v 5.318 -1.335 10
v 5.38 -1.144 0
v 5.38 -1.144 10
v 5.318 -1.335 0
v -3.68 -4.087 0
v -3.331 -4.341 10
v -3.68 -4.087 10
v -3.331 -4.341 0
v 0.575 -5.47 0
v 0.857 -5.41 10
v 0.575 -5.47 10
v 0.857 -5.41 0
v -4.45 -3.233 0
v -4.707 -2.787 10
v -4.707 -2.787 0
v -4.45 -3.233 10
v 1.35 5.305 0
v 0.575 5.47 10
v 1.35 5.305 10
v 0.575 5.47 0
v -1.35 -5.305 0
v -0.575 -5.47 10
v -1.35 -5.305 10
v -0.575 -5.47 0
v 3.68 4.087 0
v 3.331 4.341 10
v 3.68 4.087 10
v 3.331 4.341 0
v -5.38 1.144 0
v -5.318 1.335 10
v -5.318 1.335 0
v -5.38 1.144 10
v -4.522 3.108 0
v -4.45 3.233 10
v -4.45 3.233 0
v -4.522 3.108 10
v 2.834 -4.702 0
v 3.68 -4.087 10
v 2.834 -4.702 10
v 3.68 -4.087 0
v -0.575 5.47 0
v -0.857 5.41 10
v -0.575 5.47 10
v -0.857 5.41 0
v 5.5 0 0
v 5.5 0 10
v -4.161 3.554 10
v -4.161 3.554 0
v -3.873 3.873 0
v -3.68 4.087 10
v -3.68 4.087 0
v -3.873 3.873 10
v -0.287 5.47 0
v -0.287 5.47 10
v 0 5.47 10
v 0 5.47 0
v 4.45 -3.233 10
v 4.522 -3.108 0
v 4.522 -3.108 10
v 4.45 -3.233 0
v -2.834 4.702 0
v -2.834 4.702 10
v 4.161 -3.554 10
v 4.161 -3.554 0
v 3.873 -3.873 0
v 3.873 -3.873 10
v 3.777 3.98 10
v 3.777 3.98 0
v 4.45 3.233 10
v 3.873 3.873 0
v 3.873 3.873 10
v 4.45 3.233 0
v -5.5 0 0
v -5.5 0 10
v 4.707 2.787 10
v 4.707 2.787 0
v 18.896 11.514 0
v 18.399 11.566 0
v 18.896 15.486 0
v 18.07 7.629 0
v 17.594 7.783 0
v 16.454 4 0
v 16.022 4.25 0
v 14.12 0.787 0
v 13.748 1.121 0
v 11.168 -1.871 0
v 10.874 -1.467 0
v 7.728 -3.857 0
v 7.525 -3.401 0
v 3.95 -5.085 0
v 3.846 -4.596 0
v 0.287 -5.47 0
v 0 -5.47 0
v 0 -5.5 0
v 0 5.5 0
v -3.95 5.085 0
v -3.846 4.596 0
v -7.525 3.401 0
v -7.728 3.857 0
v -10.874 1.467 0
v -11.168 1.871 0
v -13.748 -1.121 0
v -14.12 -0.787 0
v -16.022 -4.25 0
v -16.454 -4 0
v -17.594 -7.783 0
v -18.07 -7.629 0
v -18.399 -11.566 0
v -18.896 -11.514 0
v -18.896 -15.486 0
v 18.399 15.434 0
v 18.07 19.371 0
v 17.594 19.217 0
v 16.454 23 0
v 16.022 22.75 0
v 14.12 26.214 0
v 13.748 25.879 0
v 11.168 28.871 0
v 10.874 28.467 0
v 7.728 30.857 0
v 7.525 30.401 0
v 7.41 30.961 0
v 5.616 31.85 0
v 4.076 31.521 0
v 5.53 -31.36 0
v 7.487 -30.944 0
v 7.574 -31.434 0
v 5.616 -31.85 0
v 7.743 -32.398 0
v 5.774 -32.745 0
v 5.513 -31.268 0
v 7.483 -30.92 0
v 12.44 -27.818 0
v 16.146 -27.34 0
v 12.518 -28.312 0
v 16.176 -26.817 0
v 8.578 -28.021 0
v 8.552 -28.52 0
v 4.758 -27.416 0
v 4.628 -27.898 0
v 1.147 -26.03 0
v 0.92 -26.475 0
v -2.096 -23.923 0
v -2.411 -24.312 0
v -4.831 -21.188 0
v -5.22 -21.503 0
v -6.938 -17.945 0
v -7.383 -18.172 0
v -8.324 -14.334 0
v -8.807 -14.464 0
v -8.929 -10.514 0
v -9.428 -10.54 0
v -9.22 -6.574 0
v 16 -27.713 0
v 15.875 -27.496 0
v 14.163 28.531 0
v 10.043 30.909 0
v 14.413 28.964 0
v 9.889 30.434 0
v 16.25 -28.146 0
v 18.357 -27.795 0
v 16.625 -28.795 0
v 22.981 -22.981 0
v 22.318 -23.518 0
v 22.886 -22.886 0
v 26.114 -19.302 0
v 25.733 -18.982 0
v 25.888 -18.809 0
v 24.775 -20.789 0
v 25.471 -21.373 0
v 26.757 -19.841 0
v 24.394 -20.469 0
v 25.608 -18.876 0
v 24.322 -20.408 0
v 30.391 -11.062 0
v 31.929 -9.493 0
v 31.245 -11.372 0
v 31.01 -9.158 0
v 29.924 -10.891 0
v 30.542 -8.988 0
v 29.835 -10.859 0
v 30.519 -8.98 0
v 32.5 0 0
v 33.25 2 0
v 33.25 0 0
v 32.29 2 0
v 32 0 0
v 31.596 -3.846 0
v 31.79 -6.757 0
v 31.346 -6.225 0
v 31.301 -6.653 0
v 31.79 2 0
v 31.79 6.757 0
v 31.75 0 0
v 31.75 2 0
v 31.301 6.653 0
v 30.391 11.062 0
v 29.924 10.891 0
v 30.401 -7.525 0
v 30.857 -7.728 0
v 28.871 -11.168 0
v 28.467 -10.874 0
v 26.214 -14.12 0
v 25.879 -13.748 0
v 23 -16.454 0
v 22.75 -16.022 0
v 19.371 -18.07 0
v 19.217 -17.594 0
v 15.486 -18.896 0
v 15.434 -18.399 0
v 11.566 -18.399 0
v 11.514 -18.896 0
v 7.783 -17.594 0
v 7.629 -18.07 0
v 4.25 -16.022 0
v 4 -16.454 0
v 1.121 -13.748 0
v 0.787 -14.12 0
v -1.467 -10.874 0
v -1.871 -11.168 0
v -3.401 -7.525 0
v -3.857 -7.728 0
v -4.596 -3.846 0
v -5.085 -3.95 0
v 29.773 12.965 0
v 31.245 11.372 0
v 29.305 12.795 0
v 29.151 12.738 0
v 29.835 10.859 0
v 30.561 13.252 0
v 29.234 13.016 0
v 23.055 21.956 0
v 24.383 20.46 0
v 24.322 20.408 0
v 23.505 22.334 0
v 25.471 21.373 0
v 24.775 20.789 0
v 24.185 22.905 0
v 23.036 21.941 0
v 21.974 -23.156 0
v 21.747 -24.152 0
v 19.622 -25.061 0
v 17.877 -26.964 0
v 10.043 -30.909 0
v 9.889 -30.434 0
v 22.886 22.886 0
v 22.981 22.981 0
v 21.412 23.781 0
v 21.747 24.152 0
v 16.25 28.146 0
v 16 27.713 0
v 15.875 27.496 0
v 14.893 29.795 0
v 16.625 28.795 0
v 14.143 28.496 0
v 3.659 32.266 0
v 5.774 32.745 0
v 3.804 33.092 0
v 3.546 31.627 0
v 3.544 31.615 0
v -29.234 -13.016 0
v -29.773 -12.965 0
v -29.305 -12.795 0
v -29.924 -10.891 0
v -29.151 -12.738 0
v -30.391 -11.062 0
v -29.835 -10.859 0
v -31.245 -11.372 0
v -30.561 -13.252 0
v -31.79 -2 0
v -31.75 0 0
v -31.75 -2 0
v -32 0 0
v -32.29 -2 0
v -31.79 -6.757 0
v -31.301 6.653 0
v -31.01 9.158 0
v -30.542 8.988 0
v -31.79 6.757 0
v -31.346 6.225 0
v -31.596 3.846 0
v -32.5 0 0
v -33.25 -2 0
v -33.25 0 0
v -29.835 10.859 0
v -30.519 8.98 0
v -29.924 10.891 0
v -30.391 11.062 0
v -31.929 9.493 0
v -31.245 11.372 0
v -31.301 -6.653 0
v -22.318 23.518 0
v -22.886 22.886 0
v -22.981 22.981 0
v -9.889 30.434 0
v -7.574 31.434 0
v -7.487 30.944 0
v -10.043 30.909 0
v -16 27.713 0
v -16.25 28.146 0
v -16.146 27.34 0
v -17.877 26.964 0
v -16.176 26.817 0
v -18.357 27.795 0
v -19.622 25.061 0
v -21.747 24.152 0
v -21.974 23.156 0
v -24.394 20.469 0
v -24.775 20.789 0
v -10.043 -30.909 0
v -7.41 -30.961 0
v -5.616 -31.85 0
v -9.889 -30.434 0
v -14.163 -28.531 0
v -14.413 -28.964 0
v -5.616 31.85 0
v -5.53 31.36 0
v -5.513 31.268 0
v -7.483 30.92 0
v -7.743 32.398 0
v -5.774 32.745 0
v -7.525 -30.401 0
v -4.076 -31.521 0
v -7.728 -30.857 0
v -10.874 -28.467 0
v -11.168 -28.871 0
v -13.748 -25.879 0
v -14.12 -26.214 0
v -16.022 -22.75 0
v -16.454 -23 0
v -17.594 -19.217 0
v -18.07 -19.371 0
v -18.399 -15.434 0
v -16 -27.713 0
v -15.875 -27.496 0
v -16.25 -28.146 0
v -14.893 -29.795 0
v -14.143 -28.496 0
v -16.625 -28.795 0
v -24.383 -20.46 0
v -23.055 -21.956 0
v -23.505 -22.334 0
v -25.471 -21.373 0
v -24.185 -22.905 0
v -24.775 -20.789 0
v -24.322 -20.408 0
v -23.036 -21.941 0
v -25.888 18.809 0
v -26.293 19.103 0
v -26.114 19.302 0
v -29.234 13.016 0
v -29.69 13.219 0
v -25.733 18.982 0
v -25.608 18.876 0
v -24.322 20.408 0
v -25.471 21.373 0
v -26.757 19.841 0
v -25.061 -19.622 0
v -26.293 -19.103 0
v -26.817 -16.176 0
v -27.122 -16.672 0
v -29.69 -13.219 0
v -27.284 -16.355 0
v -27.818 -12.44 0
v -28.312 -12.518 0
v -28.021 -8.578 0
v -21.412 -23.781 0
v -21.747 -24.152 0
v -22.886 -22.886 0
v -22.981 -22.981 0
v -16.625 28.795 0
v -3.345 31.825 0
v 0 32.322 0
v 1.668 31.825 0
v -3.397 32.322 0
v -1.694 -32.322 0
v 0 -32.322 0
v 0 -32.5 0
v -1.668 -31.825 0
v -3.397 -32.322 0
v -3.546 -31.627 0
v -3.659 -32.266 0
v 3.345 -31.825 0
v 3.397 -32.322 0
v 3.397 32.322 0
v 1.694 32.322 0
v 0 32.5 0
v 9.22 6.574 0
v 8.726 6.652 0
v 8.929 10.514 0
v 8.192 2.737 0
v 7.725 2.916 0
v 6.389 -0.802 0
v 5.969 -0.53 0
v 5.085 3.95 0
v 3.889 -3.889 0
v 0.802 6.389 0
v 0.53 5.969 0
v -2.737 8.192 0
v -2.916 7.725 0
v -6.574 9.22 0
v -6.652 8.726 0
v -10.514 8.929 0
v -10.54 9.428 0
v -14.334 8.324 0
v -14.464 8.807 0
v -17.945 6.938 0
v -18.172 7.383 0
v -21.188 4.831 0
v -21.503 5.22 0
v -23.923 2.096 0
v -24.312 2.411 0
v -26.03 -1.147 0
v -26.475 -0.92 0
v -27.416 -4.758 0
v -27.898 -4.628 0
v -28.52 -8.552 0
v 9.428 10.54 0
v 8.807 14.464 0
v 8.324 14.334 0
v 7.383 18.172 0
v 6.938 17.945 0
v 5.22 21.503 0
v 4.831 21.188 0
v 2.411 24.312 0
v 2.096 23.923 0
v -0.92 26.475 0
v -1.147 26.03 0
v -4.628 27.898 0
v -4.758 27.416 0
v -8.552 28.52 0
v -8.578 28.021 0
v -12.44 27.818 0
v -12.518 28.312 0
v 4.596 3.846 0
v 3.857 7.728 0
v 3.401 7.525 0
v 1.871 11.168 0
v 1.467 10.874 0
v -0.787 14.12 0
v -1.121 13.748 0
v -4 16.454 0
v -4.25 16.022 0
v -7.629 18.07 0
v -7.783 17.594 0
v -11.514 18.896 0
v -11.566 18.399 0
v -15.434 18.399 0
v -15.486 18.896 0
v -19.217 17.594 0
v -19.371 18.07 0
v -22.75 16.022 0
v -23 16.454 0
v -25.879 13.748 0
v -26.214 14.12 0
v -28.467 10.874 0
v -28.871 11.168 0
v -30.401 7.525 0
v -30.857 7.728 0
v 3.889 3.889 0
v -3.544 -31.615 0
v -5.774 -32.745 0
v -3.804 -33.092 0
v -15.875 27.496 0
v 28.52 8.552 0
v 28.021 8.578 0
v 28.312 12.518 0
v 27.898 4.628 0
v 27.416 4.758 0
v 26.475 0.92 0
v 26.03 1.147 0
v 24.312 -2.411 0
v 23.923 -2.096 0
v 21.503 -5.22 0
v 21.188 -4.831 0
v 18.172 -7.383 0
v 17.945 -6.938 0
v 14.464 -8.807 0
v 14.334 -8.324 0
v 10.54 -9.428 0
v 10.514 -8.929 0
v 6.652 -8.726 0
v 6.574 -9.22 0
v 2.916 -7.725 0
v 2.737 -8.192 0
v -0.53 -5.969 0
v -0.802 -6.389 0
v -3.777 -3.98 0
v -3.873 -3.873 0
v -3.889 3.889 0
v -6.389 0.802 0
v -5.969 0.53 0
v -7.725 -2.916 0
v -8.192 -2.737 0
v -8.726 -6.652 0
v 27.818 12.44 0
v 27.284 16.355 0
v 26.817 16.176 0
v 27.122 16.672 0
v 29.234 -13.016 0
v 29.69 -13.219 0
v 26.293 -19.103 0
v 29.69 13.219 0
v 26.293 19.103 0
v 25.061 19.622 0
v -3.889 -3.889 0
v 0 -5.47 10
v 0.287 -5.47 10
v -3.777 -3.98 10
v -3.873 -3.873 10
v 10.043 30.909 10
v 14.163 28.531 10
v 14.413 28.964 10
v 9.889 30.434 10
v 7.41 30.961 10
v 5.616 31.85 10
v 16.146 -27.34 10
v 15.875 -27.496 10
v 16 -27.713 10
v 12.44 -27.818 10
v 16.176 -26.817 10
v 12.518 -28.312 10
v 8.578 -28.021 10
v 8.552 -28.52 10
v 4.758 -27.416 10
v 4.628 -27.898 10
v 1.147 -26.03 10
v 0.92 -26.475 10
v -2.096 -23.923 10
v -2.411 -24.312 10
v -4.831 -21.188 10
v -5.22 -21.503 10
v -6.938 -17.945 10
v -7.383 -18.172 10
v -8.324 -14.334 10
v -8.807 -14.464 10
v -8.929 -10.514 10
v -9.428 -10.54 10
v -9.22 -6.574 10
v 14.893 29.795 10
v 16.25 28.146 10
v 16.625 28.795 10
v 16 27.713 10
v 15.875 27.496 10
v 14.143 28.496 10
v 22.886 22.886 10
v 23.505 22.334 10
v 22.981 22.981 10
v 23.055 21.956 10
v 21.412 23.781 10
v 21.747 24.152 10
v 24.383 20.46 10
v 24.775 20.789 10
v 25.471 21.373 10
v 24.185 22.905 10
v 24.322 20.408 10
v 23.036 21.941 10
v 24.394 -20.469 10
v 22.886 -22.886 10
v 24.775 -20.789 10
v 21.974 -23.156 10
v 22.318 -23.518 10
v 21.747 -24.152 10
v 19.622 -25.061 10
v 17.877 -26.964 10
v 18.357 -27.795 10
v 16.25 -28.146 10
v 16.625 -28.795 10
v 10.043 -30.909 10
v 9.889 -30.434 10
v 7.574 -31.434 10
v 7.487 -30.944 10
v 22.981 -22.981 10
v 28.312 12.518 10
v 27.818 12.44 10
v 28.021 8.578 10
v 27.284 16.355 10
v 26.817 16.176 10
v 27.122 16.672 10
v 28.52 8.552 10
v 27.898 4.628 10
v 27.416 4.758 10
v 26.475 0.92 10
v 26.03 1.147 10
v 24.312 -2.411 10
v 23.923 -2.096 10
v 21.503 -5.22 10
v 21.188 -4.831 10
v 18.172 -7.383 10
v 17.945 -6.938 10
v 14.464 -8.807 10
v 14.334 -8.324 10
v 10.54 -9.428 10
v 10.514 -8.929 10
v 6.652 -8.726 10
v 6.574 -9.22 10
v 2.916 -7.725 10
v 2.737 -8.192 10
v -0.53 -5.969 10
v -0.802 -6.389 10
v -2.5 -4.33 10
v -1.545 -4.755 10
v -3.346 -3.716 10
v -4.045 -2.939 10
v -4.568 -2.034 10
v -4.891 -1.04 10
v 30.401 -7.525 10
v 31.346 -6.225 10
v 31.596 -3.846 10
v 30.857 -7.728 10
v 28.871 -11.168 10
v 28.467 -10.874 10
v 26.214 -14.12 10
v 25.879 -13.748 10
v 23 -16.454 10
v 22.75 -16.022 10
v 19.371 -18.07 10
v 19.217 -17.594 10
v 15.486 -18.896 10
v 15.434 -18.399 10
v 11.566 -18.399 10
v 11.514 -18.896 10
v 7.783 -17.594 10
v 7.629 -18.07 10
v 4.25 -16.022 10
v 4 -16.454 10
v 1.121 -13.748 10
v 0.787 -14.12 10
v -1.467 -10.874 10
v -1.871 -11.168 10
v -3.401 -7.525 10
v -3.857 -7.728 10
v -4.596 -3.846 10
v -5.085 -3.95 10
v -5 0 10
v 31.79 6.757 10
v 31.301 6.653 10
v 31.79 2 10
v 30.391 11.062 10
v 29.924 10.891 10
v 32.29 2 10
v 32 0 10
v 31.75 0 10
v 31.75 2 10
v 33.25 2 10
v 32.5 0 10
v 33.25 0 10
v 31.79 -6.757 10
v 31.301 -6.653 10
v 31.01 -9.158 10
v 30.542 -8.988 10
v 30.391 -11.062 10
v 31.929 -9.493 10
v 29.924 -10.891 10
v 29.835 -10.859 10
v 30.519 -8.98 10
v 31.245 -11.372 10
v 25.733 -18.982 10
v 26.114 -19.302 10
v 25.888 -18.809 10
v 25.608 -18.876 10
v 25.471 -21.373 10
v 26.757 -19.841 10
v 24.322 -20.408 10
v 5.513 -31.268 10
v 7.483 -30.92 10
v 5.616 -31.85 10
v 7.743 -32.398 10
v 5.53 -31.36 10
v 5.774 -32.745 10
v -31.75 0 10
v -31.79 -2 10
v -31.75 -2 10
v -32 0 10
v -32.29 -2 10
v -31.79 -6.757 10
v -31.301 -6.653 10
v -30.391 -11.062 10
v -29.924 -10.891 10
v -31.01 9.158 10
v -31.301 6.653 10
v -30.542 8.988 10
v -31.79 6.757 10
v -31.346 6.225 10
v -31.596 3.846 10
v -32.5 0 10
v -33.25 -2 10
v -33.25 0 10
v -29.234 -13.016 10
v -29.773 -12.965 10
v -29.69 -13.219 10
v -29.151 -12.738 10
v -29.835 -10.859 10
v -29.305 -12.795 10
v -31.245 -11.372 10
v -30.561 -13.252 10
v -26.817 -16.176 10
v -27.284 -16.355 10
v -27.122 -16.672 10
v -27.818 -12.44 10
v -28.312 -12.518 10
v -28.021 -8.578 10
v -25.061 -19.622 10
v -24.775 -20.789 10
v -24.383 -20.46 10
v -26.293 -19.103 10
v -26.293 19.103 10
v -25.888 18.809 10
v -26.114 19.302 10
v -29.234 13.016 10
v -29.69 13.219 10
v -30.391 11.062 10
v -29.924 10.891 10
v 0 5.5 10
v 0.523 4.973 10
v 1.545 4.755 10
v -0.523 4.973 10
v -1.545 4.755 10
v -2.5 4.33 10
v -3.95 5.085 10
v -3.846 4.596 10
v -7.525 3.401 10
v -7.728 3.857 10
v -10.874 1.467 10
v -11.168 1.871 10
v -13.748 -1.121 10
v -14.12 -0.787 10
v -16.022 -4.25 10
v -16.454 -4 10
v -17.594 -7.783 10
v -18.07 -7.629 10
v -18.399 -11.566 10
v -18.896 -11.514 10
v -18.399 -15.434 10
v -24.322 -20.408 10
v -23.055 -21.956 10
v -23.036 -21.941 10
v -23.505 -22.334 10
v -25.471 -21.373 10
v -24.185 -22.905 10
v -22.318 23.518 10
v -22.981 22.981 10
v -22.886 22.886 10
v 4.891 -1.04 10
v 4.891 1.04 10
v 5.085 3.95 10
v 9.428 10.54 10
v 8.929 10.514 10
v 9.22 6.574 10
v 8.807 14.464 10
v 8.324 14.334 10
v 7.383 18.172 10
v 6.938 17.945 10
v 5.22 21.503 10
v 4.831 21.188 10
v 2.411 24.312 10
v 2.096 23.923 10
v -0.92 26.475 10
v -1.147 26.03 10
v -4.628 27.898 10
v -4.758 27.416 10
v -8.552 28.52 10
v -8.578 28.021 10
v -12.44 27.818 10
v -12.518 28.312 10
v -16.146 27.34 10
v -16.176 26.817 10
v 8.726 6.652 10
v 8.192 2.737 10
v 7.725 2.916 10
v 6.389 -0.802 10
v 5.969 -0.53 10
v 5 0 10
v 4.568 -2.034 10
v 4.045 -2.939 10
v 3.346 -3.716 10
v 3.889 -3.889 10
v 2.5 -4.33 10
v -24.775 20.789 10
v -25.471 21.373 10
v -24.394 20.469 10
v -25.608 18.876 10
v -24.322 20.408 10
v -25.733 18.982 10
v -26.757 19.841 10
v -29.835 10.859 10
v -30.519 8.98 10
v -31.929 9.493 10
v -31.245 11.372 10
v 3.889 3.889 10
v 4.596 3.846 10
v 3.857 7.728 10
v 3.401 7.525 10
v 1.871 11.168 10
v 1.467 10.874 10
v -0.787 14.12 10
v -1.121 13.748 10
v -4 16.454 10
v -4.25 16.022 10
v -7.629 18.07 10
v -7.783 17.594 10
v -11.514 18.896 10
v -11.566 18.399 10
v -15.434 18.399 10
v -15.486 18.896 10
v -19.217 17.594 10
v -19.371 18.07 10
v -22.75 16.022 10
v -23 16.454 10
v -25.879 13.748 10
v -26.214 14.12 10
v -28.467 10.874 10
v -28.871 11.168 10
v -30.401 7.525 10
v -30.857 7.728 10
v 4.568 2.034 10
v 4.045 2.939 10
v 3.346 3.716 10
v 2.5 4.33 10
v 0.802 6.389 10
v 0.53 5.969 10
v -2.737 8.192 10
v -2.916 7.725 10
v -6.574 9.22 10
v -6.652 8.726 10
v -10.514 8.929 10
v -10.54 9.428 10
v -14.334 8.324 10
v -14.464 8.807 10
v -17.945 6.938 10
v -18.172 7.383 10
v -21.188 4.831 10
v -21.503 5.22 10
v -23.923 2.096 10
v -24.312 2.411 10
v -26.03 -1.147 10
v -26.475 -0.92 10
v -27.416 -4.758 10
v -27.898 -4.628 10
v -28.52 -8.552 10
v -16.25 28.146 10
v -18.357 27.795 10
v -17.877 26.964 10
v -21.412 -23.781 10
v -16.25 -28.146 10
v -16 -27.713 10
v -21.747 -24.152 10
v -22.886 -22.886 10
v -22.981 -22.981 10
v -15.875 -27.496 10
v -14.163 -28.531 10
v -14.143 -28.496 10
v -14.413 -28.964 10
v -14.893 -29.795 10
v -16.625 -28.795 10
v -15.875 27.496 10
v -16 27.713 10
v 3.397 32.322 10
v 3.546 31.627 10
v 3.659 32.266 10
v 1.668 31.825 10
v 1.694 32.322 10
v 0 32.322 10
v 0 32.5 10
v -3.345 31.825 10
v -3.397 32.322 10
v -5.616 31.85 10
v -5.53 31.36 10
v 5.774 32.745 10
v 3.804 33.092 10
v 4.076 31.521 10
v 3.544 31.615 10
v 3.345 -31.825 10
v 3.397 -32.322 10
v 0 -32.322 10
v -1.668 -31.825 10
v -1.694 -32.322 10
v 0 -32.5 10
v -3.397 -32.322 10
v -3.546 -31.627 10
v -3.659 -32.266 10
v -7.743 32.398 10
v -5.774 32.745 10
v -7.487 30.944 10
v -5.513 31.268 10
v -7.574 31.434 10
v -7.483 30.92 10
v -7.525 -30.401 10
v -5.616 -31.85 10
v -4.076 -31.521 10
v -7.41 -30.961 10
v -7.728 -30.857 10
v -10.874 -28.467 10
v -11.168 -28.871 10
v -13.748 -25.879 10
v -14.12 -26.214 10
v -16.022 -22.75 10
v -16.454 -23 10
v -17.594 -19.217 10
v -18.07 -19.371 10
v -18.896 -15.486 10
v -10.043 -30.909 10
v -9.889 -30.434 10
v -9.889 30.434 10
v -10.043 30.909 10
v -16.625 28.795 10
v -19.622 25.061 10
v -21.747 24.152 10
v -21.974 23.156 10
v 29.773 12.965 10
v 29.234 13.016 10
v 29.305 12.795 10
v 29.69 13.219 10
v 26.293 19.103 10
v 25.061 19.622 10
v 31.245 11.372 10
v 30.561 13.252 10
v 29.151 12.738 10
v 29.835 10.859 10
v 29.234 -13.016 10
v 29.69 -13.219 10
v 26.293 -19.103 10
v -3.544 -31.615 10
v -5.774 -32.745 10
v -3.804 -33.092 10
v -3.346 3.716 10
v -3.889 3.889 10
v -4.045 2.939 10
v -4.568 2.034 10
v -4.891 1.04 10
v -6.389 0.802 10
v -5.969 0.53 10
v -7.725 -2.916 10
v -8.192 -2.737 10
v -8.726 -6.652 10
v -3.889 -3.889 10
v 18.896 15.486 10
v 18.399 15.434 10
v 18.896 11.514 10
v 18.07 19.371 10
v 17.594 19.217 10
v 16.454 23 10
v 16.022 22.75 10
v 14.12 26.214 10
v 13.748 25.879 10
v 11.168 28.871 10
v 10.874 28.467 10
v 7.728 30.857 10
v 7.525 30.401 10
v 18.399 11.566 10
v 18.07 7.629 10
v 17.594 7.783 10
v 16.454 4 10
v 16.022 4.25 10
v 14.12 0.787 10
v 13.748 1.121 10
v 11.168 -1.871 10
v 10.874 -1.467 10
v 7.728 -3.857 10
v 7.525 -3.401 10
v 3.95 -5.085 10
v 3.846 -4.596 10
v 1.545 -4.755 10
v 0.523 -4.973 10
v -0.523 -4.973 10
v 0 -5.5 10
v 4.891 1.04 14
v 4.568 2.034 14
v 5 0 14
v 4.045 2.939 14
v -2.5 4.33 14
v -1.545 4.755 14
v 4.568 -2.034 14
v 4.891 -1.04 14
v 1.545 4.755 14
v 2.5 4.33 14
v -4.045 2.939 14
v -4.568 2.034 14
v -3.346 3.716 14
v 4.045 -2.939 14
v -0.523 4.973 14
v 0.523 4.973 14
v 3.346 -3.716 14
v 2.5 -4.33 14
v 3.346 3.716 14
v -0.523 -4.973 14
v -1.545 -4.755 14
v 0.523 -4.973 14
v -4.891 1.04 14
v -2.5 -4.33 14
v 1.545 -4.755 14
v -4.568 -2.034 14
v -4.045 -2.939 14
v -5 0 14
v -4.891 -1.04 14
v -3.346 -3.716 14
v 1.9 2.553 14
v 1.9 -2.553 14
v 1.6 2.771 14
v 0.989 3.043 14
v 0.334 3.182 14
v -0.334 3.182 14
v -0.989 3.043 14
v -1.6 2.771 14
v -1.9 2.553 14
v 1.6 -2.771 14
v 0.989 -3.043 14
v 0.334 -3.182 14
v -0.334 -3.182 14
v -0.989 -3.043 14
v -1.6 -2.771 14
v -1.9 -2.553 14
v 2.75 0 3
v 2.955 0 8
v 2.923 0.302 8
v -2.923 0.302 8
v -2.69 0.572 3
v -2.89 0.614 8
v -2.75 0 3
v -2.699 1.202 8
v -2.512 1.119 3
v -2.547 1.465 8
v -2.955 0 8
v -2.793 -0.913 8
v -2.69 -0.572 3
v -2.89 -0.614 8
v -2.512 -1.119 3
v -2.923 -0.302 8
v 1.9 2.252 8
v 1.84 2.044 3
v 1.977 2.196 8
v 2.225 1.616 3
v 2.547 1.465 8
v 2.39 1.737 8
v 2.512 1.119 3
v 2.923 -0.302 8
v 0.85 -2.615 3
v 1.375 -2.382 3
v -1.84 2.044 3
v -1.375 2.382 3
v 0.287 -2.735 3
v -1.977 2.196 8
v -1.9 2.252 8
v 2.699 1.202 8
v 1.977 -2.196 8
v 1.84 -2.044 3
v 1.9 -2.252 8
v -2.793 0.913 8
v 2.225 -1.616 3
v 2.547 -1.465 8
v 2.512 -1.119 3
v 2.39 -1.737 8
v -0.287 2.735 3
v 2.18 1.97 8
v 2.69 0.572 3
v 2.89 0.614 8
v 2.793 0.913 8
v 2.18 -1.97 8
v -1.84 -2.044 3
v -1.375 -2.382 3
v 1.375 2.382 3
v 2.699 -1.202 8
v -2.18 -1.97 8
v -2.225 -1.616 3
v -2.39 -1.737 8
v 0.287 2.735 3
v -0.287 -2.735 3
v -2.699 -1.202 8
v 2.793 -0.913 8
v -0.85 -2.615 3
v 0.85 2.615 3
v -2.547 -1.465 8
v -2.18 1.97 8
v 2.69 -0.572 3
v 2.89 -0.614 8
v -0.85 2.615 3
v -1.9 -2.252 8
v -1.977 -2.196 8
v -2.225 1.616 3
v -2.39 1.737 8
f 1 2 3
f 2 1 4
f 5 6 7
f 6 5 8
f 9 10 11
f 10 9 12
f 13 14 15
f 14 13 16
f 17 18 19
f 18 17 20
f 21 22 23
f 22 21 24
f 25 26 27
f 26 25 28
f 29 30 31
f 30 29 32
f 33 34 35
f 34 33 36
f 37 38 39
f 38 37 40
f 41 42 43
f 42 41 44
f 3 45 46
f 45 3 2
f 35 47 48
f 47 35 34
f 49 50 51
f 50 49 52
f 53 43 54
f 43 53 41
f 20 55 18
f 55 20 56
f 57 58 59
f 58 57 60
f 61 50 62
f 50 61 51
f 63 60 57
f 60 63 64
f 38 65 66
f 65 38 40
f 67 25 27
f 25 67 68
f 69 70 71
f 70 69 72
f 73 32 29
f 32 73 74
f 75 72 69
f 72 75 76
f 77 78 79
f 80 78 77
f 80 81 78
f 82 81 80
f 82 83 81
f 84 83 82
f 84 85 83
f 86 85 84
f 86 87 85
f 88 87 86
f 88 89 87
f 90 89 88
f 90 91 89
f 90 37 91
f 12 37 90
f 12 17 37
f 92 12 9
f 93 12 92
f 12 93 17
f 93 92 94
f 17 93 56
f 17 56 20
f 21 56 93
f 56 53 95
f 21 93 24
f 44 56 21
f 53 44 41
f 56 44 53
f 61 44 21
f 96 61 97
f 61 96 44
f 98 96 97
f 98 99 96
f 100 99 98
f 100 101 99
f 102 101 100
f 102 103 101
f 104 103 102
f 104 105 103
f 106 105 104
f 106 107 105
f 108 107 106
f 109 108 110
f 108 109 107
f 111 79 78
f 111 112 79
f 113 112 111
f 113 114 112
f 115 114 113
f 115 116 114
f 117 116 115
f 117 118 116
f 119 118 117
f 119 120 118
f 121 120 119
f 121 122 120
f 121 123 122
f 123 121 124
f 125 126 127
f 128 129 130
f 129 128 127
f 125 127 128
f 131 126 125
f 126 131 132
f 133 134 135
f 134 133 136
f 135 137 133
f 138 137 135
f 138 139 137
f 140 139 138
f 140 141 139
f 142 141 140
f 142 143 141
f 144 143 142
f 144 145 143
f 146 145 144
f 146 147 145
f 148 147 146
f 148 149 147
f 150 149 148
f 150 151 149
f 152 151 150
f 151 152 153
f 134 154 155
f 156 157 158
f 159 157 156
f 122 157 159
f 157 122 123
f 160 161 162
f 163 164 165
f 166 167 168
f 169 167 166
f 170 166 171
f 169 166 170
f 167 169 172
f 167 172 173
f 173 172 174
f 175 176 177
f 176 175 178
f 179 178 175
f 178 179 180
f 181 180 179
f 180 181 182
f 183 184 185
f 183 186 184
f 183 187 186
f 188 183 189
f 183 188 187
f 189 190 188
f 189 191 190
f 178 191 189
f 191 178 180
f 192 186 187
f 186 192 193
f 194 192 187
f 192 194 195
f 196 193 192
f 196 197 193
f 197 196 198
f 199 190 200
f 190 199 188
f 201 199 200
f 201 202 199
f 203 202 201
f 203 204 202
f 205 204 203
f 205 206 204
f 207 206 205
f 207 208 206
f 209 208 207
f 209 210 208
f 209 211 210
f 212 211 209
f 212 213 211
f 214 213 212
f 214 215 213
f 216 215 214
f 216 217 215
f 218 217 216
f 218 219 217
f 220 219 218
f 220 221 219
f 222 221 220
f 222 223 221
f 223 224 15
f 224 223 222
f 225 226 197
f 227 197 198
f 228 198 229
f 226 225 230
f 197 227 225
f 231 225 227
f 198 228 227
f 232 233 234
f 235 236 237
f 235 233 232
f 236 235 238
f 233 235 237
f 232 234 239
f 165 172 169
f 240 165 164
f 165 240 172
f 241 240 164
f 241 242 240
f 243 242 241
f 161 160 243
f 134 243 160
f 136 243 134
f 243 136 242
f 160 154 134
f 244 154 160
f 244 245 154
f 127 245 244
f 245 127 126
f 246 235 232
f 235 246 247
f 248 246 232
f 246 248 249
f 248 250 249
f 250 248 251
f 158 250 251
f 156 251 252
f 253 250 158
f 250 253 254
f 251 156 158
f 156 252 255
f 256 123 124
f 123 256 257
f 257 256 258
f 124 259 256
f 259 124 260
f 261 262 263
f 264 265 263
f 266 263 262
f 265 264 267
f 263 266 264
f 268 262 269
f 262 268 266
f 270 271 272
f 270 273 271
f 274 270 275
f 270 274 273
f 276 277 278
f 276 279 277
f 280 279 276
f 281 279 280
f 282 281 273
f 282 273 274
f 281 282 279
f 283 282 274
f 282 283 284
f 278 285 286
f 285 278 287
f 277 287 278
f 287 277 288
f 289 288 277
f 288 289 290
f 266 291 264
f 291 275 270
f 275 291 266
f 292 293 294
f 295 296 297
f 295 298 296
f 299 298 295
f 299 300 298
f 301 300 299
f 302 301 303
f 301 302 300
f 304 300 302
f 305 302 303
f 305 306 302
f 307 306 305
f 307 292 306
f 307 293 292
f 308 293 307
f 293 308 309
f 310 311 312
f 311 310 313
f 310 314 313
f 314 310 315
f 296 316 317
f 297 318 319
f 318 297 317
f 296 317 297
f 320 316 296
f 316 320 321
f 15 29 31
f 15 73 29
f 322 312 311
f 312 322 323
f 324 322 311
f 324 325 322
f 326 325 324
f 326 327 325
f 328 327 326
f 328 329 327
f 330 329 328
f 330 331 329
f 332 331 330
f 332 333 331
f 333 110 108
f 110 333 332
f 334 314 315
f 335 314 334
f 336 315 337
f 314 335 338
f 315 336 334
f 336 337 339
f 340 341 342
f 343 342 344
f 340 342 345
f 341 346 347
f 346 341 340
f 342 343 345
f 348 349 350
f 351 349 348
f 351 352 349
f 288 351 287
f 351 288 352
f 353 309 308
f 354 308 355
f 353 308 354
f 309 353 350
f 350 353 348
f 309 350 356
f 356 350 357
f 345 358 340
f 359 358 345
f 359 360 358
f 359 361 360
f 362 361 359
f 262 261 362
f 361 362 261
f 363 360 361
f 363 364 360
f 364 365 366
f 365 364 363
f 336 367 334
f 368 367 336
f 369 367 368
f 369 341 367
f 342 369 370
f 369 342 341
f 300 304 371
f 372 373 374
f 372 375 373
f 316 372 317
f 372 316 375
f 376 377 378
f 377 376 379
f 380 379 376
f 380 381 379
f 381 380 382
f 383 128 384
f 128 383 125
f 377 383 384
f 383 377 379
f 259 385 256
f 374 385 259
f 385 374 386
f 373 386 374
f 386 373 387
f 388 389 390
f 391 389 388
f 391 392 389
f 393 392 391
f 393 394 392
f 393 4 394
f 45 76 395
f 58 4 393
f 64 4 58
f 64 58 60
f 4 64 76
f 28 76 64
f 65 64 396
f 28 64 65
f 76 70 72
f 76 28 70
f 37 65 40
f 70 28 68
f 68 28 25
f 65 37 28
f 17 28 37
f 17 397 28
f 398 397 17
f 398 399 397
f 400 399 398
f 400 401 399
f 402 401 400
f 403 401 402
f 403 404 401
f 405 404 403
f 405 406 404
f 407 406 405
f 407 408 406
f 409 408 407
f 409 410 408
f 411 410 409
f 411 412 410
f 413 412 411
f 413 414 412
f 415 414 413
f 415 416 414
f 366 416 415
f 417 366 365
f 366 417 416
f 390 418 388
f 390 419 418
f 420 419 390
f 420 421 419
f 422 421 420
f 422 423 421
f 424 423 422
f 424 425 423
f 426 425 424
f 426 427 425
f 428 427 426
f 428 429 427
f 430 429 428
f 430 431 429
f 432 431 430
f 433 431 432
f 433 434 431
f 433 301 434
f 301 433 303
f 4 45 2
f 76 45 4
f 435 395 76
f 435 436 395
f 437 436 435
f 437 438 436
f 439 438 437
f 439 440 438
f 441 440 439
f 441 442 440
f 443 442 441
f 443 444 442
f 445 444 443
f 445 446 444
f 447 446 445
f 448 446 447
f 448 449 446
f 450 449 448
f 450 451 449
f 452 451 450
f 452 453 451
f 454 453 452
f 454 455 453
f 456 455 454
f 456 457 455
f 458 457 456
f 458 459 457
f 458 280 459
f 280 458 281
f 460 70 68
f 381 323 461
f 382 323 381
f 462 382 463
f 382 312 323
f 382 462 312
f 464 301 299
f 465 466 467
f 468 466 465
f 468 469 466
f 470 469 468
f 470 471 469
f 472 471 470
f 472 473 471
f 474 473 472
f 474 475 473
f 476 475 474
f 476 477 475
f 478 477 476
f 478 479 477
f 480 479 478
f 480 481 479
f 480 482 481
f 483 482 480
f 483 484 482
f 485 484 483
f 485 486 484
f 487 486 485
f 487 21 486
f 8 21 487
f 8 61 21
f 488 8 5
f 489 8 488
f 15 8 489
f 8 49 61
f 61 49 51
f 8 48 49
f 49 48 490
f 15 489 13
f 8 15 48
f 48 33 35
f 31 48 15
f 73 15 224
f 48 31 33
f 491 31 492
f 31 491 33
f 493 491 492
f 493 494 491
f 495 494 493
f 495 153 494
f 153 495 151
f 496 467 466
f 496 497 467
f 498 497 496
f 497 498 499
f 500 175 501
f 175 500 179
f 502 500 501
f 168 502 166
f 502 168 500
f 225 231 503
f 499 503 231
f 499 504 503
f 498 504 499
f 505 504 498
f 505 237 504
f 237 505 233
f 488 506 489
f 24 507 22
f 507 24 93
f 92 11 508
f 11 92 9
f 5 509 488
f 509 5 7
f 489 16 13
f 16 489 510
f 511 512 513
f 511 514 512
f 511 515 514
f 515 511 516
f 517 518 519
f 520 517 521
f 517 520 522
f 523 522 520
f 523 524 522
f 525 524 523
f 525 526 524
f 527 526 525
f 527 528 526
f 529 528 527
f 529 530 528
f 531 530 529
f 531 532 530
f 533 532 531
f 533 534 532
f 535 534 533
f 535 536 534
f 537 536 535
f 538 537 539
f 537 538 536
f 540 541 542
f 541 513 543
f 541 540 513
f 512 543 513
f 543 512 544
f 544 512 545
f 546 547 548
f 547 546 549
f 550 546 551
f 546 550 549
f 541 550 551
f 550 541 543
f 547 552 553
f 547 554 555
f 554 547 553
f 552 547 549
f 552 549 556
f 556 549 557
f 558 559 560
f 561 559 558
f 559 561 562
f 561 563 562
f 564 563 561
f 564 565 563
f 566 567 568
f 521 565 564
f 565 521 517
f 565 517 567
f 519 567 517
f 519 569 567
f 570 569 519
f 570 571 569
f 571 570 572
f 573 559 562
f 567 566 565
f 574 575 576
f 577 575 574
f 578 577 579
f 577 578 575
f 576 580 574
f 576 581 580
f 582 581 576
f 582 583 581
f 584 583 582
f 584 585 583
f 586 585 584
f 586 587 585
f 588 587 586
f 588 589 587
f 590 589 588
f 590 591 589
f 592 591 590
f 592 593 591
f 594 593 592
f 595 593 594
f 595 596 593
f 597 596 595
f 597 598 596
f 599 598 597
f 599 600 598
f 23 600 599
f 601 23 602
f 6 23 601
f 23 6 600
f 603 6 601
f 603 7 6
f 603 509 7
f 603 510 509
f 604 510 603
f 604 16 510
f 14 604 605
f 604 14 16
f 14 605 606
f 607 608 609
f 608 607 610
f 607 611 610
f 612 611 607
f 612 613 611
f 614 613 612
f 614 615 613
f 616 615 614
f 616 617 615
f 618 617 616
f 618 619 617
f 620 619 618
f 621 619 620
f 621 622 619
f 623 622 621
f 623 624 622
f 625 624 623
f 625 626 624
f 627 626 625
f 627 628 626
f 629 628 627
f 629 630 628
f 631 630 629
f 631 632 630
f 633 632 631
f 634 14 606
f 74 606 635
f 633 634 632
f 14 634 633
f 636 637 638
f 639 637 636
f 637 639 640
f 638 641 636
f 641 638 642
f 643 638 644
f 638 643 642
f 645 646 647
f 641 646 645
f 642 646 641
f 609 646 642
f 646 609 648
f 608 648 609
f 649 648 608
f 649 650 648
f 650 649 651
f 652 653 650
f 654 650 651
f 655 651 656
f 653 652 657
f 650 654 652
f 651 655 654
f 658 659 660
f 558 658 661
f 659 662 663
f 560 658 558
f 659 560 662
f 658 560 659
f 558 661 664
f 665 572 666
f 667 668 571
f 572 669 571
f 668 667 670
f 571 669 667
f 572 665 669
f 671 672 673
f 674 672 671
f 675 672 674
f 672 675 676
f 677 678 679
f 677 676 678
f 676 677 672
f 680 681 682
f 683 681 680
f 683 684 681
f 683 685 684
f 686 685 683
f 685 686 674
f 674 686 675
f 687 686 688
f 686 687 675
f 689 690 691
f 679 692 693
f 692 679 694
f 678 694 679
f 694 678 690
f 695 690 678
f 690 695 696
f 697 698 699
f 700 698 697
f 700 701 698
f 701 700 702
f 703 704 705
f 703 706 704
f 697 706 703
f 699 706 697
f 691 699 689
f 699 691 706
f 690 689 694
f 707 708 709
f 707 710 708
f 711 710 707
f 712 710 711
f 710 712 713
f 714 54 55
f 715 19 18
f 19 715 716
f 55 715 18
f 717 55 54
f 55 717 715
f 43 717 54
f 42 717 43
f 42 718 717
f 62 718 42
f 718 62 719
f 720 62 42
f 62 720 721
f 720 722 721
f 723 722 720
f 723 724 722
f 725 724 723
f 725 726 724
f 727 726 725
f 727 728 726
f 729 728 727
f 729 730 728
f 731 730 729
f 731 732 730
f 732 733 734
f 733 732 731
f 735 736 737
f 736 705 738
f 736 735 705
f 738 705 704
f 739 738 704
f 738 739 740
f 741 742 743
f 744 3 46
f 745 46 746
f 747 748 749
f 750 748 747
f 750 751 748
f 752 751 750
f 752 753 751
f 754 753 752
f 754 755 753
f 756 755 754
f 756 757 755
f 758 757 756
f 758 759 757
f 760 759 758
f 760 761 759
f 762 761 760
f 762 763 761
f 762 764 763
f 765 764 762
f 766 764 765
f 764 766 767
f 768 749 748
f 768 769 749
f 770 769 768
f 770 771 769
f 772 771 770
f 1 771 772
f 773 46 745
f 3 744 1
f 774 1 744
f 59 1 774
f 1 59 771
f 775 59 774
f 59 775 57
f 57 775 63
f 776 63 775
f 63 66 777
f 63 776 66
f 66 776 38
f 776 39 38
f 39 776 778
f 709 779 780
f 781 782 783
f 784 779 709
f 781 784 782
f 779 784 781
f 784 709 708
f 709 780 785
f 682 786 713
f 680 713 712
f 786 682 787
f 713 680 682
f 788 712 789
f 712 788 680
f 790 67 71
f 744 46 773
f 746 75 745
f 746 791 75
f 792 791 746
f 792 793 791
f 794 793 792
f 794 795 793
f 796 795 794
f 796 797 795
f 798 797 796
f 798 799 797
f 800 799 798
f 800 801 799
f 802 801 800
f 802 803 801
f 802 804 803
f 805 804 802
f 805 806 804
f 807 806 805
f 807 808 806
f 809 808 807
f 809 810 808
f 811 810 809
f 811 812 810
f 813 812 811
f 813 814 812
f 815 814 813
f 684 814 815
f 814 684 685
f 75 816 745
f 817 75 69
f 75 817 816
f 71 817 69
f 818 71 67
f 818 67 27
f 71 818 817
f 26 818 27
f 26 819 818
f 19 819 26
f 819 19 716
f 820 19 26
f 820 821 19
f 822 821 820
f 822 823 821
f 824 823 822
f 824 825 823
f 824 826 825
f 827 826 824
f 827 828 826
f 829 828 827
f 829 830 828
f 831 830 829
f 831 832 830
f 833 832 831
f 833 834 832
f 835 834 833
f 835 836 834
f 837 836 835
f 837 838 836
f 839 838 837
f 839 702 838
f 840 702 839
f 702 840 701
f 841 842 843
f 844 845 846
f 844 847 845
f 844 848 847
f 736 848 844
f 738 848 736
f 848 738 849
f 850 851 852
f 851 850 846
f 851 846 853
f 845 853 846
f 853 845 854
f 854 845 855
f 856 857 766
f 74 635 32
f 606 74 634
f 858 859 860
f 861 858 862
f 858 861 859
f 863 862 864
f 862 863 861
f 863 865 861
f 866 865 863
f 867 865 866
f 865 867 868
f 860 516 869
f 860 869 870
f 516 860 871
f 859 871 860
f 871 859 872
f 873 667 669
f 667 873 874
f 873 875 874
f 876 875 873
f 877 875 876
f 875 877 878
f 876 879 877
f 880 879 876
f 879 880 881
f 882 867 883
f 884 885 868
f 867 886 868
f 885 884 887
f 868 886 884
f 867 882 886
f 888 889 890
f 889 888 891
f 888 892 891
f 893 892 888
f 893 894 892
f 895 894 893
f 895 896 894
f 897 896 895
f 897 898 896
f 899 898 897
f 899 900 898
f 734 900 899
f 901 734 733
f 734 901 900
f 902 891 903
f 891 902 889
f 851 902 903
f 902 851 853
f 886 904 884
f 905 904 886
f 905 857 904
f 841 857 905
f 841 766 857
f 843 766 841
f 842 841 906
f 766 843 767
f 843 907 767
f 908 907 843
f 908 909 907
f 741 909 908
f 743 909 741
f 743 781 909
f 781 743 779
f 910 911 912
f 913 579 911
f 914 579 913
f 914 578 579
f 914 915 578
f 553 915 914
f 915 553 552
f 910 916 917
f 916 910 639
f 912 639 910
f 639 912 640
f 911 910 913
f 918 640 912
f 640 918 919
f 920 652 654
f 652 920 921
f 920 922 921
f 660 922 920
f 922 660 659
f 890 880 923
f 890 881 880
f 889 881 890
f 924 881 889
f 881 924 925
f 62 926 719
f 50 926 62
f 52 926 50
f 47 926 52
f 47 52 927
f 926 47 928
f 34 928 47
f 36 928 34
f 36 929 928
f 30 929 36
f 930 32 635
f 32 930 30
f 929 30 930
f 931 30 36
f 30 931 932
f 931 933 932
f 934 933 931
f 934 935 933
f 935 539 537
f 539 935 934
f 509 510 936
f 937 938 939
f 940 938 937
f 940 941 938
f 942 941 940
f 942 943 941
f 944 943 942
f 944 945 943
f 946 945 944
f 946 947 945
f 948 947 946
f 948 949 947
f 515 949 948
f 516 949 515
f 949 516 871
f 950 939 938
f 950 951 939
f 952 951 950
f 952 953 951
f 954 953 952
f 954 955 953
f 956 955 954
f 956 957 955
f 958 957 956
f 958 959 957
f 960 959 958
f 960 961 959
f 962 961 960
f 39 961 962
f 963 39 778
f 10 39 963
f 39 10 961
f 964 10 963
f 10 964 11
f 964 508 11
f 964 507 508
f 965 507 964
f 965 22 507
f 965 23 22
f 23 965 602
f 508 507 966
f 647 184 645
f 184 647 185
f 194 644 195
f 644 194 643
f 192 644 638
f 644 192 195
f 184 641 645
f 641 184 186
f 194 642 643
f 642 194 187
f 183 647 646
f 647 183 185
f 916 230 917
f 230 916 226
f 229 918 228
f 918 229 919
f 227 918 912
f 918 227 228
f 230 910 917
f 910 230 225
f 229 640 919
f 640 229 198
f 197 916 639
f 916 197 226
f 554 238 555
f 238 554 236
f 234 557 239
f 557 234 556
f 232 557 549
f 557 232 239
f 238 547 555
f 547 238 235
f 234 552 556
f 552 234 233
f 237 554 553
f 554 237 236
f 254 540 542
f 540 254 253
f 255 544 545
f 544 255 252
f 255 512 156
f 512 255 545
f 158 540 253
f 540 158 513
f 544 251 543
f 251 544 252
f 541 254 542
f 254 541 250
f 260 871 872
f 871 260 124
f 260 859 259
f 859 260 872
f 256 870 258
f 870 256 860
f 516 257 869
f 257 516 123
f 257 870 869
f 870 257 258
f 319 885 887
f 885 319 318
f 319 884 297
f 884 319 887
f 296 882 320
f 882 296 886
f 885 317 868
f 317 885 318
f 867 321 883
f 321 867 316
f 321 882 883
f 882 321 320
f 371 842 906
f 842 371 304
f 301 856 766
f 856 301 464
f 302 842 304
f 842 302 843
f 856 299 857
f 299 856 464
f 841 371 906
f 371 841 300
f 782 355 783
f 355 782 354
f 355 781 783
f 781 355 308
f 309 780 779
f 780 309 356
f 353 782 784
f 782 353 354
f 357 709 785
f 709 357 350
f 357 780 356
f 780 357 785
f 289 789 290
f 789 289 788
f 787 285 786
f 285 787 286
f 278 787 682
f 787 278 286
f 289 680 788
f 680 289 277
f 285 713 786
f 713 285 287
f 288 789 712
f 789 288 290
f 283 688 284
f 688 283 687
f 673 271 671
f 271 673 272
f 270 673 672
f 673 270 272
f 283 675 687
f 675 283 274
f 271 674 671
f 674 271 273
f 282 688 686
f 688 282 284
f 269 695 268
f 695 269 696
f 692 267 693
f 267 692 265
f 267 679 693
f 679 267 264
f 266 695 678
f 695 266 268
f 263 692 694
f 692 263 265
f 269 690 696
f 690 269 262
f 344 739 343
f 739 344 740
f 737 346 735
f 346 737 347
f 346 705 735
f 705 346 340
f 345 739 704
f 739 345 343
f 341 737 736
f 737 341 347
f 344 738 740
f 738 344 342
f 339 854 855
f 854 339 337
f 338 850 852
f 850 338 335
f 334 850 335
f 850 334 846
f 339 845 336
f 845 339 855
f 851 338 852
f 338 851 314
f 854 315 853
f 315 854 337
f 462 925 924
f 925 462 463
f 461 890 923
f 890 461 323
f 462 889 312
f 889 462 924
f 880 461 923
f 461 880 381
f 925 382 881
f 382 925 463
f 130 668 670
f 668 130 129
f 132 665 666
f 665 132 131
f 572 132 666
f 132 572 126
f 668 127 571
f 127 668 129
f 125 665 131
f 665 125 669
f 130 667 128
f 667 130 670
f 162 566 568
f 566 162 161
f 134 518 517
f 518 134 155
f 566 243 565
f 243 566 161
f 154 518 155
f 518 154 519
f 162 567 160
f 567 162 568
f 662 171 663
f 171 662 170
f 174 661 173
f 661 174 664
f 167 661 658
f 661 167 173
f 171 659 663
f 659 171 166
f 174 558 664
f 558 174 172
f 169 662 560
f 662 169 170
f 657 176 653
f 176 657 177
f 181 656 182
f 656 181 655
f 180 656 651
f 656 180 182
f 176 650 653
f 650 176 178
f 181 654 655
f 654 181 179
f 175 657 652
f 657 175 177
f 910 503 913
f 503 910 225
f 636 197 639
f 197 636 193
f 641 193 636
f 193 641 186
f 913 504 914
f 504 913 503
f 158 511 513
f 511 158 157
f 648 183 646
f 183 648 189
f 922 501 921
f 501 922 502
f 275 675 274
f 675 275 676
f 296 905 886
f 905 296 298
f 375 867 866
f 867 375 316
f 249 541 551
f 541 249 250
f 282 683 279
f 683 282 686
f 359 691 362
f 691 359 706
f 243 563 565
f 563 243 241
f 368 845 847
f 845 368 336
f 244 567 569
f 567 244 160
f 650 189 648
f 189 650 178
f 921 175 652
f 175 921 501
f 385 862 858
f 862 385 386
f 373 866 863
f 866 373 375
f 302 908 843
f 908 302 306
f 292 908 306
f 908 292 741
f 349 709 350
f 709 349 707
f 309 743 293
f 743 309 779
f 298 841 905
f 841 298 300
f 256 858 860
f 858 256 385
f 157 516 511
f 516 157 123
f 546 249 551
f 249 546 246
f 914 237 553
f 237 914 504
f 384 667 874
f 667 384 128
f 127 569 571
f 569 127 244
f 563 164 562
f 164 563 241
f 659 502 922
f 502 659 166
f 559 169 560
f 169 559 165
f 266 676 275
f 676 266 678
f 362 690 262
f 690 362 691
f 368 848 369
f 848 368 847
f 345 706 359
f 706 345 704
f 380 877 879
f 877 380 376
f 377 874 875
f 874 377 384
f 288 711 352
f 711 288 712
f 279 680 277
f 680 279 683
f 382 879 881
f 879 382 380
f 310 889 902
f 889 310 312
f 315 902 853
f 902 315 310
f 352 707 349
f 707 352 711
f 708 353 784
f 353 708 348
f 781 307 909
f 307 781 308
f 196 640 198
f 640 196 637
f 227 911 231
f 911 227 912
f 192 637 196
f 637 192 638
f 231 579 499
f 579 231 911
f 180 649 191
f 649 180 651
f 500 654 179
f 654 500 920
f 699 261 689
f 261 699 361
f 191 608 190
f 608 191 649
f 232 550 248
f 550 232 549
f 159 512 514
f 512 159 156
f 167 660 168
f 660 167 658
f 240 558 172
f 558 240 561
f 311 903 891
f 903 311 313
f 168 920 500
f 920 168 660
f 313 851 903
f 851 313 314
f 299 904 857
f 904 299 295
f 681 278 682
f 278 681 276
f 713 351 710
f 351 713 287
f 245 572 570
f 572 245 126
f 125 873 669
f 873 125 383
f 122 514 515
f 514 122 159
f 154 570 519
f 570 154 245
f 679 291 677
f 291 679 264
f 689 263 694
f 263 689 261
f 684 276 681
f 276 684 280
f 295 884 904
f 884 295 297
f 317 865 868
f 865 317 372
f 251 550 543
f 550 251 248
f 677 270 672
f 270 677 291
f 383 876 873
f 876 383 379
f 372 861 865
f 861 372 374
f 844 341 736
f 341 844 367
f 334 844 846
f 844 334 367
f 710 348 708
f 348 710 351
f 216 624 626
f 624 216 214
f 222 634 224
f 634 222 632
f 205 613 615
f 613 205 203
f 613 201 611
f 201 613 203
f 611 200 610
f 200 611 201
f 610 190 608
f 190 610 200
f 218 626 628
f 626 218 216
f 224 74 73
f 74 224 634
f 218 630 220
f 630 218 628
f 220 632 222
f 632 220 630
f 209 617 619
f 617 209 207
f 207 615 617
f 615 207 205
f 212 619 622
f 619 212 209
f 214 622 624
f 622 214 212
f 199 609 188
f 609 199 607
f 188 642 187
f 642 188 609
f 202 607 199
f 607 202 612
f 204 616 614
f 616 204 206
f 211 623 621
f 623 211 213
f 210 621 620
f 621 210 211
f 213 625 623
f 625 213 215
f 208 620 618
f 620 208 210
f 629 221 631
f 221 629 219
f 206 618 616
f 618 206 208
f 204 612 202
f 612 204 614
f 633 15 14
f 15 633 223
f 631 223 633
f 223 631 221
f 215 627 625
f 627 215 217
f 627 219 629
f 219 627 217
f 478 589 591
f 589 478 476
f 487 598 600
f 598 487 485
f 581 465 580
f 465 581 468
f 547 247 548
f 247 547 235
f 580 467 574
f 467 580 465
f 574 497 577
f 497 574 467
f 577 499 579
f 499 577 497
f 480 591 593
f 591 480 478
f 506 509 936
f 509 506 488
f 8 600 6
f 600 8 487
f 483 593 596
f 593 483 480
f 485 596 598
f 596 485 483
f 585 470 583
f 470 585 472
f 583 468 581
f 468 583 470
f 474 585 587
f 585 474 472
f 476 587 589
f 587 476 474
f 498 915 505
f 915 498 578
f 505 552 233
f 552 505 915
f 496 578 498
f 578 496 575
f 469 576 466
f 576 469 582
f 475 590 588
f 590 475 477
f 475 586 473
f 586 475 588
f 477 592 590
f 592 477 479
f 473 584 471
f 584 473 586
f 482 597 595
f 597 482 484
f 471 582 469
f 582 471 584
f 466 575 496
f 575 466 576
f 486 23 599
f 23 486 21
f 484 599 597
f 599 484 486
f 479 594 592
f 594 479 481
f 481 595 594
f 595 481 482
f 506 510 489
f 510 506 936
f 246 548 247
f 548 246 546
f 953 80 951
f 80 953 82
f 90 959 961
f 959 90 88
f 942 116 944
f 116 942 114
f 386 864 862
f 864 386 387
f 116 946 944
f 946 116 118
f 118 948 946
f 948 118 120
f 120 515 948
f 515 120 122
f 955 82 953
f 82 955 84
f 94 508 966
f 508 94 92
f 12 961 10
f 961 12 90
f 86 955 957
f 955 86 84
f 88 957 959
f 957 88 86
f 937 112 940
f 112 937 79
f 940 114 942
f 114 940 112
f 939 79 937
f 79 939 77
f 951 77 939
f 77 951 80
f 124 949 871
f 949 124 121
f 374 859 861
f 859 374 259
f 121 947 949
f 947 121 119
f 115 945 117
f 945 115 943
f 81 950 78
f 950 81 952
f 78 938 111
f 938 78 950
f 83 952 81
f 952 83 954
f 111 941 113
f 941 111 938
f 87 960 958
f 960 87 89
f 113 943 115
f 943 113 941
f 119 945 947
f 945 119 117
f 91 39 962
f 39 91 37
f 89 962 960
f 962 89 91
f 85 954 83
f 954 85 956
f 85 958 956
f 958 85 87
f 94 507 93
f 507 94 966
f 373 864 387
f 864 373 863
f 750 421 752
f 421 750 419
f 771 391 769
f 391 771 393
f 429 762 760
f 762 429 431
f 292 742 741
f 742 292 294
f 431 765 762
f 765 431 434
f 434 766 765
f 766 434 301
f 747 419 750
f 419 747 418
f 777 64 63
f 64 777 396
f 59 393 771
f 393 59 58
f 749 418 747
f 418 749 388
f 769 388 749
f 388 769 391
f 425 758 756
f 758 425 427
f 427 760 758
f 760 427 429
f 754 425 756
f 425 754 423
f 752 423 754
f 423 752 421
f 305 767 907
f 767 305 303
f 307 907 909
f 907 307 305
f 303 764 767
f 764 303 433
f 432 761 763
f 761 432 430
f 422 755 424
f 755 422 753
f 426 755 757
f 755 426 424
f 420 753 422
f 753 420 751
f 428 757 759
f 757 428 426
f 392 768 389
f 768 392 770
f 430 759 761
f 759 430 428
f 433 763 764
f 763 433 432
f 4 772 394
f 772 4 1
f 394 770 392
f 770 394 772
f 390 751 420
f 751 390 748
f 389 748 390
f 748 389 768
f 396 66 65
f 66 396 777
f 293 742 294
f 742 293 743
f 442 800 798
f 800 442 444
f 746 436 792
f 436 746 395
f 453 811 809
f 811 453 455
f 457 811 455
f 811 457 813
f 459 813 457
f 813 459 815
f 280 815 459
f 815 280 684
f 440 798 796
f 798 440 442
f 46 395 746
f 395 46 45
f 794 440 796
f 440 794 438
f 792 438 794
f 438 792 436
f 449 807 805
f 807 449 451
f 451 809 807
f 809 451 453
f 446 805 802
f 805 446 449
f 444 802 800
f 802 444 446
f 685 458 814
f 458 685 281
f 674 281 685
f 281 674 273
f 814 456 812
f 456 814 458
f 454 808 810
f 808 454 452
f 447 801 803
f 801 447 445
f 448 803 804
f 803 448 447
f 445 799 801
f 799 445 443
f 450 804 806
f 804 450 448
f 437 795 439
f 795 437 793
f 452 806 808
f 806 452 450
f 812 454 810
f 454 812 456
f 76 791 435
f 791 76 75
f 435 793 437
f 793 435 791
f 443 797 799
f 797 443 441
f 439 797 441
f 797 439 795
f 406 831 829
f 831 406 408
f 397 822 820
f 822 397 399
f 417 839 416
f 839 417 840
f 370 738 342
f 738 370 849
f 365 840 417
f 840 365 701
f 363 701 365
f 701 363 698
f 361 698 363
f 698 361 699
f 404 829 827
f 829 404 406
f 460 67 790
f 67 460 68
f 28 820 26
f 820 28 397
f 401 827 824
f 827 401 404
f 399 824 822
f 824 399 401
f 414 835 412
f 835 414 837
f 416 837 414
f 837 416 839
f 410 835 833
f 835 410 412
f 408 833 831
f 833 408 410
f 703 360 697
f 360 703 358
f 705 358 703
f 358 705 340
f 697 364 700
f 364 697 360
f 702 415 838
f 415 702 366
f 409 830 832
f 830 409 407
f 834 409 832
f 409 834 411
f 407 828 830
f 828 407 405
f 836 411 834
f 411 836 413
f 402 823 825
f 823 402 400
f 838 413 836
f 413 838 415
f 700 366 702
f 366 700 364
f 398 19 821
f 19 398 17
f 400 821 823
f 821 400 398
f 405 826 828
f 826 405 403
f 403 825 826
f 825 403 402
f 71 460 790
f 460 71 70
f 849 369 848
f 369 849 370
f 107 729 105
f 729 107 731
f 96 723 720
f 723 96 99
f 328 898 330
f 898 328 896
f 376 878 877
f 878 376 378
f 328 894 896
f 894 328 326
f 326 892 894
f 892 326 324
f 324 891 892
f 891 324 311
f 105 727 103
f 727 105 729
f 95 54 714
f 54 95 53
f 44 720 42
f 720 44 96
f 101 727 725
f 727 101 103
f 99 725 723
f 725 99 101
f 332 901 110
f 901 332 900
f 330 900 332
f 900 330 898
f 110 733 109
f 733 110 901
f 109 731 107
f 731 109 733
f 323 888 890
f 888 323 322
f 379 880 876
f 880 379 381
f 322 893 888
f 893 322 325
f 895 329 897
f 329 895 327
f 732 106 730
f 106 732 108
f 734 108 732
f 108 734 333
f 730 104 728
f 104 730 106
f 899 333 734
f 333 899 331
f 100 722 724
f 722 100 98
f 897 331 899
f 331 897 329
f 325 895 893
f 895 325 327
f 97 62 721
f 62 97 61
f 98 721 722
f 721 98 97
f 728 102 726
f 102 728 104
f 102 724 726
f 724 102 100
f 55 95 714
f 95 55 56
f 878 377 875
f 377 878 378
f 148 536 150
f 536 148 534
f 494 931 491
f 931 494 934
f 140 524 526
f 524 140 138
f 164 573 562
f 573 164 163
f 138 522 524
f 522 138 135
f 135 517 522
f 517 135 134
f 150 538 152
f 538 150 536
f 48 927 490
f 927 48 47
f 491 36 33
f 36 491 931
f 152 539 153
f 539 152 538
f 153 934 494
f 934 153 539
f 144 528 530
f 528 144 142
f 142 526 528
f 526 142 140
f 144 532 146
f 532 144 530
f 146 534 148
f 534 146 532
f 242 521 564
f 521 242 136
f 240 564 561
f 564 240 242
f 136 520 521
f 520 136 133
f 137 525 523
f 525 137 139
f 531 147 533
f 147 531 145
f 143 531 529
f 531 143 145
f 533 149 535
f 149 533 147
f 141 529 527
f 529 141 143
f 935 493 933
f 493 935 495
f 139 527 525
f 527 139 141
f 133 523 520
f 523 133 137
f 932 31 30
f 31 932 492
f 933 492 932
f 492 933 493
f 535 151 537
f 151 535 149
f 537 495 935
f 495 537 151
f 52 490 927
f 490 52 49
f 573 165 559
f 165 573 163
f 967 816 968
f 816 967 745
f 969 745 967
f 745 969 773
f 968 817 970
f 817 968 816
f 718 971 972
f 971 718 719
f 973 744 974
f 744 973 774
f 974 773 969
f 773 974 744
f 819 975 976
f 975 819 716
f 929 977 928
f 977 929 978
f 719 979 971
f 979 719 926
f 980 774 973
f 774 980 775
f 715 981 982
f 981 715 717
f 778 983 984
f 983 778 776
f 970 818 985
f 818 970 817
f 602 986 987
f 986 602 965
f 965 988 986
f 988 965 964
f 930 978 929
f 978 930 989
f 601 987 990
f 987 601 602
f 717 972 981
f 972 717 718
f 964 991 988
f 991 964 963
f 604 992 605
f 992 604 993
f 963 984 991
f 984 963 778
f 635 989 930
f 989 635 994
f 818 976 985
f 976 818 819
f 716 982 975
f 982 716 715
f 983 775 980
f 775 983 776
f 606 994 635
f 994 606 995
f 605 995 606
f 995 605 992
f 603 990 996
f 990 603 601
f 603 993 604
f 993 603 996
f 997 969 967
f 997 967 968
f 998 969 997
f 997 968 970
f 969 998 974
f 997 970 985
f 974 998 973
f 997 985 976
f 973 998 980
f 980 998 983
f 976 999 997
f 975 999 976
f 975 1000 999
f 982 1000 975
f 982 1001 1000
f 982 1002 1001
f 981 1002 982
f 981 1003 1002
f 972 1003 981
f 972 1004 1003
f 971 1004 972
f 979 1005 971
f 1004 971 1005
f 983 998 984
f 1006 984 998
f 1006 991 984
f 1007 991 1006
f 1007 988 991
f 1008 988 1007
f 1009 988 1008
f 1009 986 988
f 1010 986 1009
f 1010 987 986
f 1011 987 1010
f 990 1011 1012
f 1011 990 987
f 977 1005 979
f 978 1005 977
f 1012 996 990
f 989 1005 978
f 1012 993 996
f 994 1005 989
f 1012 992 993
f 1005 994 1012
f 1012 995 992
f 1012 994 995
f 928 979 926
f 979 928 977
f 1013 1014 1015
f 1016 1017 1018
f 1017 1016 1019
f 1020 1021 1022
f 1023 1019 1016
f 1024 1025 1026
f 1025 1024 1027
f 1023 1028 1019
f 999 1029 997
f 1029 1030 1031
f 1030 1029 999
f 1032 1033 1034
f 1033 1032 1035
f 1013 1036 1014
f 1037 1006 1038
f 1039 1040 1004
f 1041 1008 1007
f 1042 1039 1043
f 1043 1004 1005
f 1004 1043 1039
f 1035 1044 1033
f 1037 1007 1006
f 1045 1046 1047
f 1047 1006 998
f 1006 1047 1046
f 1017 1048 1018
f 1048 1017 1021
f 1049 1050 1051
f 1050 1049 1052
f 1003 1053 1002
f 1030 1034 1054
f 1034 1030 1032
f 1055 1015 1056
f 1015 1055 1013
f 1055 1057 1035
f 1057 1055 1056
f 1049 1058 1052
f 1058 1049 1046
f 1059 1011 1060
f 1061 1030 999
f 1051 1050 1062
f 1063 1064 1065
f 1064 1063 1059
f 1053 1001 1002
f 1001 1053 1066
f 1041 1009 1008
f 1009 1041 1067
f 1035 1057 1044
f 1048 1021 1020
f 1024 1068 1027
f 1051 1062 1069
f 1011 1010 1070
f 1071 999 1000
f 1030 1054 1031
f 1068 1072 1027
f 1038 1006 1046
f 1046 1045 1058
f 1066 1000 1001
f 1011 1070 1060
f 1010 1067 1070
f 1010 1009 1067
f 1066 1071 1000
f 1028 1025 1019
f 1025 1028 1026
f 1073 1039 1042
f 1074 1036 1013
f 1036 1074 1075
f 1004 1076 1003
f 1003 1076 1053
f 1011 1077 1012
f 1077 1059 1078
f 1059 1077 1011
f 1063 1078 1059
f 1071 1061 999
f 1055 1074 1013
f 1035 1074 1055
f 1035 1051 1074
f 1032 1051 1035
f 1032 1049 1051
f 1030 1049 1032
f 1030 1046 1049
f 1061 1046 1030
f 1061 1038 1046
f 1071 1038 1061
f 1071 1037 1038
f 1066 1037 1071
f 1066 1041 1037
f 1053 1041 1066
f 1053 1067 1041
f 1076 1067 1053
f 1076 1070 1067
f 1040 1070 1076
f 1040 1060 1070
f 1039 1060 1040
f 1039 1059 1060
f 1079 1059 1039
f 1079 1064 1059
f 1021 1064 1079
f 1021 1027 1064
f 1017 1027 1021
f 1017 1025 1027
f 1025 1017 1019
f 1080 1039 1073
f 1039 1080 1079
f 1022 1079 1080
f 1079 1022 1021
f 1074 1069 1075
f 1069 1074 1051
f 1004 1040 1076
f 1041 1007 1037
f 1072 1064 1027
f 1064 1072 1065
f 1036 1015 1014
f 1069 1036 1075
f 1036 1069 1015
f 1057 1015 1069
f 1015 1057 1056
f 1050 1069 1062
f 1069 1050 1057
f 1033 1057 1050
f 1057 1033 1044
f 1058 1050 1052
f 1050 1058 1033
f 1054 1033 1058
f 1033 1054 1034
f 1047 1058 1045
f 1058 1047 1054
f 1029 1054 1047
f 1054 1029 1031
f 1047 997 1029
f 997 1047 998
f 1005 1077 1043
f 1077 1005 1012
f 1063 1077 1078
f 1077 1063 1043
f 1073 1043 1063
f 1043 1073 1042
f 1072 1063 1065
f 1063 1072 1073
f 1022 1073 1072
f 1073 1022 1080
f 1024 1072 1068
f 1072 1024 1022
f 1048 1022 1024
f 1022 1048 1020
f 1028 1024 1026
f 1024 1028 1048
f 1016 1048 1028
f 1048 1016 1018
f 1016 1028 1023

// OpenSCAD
/*   	Parametric airless tire
		by Travis Howse <tjhowse@gmail.com>
		2012.   License, GPL v2 or later
**************************************************/
// https://www.thingiverse.com/thing:17514/files
dia_in = 1;
dia_out = 65;//65;
spoke_count = 8;
spoke_thickness = 0.5;
tread_thickness = 0.5;
hub_thickness = 5;
height = 10;
washer_height = 4;
$fn = 30;
spoke_dia = (dia_in/2) + hub_thickness + (dia_out/2) - tread_thickness+spoke_thickness;
grip_density = 0.05; // Set to 0 for no grip.
grip_height = 1.5;
grip_depth = 2;
pi = 3.14159;
zff = 0.001;

print_wheel = true;


//Set to 1 for a double spiral.
// Note: single-wall spokes probably won't work with double spirals, as the
// first layer of the upper spiral would bridge in a straight line, rather
// than a curve. Successive layers probably wouldn't recover.
double_spiral = 0;

module wheel()
{
	difference()
	{
		cylinder(r=dia_out/2,h=height);
		cylinder(r=(dia_out/2)-tread_thickness,h=height);	
	}

	difference()
	{
		cylinder(r=(dia_in/2)+hub_thickness,h=height);
		cylinder(r=dia_in/2,h=height);	
	}

	for (i = [0:spoke_count-1])
	{
		if (double_spiral)
		{
			rotate([0,0,i * (360/spoke_count)]) translate([(spoke_dia/2)-(dia_in/2)-hub_thickness,0,(height/2)+zff]) spoke();
			rotate([180,0,i * (360/spoke_count)]) translate([(spoke_dia/2)-(dia_in/2)-hub_thickness,0,-height/2]) spoke();			
		} else {
			rotate([0,0,i * (360/spoke_count)]) translate([(spoke_dia/2)-(dia_in/2)-hub_thickness,0,0]) spoke();
		}
	}
	
	if (grip_density != 0)
	{
		for (i = [0:(360*grip_density)])
		{
			rotate([0,0,i*(360/(360*grip_density))]) translate([dia_out/2-grip_height/2,0,0]) cube([grip_height,grip_depth,height]);
		}
	}
}

module spoke()
{
	intersection()
	{
		difference()
		{
			cylinder(r=spoke_dia/2,h=height);
			cylinder(r=(spoke_dia/2)-spoke_thickness,h=height);	
		}
		if (double_spiral)
		{
			translate([-spoke_dia/2,-spoke_dia,0]) cube([spoke_dia,spoke_dia,height/2]);
		} else {
			translate([-spoke_dia/2,-spoke_dia,0]) cube([spoke_dia,spoke_dia,height]);
		}
	}
}
if (print_wheel) {
    
    mirror([0,0,1]) {
        translate([0,0,-height]) {
            
            difference() {
                union() {
                    translate([0,0,-washer_height]) {
                        cylinder(h=height + washer_height, r=hub_thickness);
                    }
                    wheel();
                }
                
                //cylinder(h=10, r=4 , center=false);
                translate([0,0,-washer_height]) {
                    cylinder(h=7+washer_height, r1=3.2, r2=2.75 , center=false);
                }
                

            }

            translate([1.9,-3,0-washer_height])
                cube([2,6,6]);

            translate([-1.9-2,-3,0-washer_height])
                cube([2,6,6]);
            
        }
    }
}
